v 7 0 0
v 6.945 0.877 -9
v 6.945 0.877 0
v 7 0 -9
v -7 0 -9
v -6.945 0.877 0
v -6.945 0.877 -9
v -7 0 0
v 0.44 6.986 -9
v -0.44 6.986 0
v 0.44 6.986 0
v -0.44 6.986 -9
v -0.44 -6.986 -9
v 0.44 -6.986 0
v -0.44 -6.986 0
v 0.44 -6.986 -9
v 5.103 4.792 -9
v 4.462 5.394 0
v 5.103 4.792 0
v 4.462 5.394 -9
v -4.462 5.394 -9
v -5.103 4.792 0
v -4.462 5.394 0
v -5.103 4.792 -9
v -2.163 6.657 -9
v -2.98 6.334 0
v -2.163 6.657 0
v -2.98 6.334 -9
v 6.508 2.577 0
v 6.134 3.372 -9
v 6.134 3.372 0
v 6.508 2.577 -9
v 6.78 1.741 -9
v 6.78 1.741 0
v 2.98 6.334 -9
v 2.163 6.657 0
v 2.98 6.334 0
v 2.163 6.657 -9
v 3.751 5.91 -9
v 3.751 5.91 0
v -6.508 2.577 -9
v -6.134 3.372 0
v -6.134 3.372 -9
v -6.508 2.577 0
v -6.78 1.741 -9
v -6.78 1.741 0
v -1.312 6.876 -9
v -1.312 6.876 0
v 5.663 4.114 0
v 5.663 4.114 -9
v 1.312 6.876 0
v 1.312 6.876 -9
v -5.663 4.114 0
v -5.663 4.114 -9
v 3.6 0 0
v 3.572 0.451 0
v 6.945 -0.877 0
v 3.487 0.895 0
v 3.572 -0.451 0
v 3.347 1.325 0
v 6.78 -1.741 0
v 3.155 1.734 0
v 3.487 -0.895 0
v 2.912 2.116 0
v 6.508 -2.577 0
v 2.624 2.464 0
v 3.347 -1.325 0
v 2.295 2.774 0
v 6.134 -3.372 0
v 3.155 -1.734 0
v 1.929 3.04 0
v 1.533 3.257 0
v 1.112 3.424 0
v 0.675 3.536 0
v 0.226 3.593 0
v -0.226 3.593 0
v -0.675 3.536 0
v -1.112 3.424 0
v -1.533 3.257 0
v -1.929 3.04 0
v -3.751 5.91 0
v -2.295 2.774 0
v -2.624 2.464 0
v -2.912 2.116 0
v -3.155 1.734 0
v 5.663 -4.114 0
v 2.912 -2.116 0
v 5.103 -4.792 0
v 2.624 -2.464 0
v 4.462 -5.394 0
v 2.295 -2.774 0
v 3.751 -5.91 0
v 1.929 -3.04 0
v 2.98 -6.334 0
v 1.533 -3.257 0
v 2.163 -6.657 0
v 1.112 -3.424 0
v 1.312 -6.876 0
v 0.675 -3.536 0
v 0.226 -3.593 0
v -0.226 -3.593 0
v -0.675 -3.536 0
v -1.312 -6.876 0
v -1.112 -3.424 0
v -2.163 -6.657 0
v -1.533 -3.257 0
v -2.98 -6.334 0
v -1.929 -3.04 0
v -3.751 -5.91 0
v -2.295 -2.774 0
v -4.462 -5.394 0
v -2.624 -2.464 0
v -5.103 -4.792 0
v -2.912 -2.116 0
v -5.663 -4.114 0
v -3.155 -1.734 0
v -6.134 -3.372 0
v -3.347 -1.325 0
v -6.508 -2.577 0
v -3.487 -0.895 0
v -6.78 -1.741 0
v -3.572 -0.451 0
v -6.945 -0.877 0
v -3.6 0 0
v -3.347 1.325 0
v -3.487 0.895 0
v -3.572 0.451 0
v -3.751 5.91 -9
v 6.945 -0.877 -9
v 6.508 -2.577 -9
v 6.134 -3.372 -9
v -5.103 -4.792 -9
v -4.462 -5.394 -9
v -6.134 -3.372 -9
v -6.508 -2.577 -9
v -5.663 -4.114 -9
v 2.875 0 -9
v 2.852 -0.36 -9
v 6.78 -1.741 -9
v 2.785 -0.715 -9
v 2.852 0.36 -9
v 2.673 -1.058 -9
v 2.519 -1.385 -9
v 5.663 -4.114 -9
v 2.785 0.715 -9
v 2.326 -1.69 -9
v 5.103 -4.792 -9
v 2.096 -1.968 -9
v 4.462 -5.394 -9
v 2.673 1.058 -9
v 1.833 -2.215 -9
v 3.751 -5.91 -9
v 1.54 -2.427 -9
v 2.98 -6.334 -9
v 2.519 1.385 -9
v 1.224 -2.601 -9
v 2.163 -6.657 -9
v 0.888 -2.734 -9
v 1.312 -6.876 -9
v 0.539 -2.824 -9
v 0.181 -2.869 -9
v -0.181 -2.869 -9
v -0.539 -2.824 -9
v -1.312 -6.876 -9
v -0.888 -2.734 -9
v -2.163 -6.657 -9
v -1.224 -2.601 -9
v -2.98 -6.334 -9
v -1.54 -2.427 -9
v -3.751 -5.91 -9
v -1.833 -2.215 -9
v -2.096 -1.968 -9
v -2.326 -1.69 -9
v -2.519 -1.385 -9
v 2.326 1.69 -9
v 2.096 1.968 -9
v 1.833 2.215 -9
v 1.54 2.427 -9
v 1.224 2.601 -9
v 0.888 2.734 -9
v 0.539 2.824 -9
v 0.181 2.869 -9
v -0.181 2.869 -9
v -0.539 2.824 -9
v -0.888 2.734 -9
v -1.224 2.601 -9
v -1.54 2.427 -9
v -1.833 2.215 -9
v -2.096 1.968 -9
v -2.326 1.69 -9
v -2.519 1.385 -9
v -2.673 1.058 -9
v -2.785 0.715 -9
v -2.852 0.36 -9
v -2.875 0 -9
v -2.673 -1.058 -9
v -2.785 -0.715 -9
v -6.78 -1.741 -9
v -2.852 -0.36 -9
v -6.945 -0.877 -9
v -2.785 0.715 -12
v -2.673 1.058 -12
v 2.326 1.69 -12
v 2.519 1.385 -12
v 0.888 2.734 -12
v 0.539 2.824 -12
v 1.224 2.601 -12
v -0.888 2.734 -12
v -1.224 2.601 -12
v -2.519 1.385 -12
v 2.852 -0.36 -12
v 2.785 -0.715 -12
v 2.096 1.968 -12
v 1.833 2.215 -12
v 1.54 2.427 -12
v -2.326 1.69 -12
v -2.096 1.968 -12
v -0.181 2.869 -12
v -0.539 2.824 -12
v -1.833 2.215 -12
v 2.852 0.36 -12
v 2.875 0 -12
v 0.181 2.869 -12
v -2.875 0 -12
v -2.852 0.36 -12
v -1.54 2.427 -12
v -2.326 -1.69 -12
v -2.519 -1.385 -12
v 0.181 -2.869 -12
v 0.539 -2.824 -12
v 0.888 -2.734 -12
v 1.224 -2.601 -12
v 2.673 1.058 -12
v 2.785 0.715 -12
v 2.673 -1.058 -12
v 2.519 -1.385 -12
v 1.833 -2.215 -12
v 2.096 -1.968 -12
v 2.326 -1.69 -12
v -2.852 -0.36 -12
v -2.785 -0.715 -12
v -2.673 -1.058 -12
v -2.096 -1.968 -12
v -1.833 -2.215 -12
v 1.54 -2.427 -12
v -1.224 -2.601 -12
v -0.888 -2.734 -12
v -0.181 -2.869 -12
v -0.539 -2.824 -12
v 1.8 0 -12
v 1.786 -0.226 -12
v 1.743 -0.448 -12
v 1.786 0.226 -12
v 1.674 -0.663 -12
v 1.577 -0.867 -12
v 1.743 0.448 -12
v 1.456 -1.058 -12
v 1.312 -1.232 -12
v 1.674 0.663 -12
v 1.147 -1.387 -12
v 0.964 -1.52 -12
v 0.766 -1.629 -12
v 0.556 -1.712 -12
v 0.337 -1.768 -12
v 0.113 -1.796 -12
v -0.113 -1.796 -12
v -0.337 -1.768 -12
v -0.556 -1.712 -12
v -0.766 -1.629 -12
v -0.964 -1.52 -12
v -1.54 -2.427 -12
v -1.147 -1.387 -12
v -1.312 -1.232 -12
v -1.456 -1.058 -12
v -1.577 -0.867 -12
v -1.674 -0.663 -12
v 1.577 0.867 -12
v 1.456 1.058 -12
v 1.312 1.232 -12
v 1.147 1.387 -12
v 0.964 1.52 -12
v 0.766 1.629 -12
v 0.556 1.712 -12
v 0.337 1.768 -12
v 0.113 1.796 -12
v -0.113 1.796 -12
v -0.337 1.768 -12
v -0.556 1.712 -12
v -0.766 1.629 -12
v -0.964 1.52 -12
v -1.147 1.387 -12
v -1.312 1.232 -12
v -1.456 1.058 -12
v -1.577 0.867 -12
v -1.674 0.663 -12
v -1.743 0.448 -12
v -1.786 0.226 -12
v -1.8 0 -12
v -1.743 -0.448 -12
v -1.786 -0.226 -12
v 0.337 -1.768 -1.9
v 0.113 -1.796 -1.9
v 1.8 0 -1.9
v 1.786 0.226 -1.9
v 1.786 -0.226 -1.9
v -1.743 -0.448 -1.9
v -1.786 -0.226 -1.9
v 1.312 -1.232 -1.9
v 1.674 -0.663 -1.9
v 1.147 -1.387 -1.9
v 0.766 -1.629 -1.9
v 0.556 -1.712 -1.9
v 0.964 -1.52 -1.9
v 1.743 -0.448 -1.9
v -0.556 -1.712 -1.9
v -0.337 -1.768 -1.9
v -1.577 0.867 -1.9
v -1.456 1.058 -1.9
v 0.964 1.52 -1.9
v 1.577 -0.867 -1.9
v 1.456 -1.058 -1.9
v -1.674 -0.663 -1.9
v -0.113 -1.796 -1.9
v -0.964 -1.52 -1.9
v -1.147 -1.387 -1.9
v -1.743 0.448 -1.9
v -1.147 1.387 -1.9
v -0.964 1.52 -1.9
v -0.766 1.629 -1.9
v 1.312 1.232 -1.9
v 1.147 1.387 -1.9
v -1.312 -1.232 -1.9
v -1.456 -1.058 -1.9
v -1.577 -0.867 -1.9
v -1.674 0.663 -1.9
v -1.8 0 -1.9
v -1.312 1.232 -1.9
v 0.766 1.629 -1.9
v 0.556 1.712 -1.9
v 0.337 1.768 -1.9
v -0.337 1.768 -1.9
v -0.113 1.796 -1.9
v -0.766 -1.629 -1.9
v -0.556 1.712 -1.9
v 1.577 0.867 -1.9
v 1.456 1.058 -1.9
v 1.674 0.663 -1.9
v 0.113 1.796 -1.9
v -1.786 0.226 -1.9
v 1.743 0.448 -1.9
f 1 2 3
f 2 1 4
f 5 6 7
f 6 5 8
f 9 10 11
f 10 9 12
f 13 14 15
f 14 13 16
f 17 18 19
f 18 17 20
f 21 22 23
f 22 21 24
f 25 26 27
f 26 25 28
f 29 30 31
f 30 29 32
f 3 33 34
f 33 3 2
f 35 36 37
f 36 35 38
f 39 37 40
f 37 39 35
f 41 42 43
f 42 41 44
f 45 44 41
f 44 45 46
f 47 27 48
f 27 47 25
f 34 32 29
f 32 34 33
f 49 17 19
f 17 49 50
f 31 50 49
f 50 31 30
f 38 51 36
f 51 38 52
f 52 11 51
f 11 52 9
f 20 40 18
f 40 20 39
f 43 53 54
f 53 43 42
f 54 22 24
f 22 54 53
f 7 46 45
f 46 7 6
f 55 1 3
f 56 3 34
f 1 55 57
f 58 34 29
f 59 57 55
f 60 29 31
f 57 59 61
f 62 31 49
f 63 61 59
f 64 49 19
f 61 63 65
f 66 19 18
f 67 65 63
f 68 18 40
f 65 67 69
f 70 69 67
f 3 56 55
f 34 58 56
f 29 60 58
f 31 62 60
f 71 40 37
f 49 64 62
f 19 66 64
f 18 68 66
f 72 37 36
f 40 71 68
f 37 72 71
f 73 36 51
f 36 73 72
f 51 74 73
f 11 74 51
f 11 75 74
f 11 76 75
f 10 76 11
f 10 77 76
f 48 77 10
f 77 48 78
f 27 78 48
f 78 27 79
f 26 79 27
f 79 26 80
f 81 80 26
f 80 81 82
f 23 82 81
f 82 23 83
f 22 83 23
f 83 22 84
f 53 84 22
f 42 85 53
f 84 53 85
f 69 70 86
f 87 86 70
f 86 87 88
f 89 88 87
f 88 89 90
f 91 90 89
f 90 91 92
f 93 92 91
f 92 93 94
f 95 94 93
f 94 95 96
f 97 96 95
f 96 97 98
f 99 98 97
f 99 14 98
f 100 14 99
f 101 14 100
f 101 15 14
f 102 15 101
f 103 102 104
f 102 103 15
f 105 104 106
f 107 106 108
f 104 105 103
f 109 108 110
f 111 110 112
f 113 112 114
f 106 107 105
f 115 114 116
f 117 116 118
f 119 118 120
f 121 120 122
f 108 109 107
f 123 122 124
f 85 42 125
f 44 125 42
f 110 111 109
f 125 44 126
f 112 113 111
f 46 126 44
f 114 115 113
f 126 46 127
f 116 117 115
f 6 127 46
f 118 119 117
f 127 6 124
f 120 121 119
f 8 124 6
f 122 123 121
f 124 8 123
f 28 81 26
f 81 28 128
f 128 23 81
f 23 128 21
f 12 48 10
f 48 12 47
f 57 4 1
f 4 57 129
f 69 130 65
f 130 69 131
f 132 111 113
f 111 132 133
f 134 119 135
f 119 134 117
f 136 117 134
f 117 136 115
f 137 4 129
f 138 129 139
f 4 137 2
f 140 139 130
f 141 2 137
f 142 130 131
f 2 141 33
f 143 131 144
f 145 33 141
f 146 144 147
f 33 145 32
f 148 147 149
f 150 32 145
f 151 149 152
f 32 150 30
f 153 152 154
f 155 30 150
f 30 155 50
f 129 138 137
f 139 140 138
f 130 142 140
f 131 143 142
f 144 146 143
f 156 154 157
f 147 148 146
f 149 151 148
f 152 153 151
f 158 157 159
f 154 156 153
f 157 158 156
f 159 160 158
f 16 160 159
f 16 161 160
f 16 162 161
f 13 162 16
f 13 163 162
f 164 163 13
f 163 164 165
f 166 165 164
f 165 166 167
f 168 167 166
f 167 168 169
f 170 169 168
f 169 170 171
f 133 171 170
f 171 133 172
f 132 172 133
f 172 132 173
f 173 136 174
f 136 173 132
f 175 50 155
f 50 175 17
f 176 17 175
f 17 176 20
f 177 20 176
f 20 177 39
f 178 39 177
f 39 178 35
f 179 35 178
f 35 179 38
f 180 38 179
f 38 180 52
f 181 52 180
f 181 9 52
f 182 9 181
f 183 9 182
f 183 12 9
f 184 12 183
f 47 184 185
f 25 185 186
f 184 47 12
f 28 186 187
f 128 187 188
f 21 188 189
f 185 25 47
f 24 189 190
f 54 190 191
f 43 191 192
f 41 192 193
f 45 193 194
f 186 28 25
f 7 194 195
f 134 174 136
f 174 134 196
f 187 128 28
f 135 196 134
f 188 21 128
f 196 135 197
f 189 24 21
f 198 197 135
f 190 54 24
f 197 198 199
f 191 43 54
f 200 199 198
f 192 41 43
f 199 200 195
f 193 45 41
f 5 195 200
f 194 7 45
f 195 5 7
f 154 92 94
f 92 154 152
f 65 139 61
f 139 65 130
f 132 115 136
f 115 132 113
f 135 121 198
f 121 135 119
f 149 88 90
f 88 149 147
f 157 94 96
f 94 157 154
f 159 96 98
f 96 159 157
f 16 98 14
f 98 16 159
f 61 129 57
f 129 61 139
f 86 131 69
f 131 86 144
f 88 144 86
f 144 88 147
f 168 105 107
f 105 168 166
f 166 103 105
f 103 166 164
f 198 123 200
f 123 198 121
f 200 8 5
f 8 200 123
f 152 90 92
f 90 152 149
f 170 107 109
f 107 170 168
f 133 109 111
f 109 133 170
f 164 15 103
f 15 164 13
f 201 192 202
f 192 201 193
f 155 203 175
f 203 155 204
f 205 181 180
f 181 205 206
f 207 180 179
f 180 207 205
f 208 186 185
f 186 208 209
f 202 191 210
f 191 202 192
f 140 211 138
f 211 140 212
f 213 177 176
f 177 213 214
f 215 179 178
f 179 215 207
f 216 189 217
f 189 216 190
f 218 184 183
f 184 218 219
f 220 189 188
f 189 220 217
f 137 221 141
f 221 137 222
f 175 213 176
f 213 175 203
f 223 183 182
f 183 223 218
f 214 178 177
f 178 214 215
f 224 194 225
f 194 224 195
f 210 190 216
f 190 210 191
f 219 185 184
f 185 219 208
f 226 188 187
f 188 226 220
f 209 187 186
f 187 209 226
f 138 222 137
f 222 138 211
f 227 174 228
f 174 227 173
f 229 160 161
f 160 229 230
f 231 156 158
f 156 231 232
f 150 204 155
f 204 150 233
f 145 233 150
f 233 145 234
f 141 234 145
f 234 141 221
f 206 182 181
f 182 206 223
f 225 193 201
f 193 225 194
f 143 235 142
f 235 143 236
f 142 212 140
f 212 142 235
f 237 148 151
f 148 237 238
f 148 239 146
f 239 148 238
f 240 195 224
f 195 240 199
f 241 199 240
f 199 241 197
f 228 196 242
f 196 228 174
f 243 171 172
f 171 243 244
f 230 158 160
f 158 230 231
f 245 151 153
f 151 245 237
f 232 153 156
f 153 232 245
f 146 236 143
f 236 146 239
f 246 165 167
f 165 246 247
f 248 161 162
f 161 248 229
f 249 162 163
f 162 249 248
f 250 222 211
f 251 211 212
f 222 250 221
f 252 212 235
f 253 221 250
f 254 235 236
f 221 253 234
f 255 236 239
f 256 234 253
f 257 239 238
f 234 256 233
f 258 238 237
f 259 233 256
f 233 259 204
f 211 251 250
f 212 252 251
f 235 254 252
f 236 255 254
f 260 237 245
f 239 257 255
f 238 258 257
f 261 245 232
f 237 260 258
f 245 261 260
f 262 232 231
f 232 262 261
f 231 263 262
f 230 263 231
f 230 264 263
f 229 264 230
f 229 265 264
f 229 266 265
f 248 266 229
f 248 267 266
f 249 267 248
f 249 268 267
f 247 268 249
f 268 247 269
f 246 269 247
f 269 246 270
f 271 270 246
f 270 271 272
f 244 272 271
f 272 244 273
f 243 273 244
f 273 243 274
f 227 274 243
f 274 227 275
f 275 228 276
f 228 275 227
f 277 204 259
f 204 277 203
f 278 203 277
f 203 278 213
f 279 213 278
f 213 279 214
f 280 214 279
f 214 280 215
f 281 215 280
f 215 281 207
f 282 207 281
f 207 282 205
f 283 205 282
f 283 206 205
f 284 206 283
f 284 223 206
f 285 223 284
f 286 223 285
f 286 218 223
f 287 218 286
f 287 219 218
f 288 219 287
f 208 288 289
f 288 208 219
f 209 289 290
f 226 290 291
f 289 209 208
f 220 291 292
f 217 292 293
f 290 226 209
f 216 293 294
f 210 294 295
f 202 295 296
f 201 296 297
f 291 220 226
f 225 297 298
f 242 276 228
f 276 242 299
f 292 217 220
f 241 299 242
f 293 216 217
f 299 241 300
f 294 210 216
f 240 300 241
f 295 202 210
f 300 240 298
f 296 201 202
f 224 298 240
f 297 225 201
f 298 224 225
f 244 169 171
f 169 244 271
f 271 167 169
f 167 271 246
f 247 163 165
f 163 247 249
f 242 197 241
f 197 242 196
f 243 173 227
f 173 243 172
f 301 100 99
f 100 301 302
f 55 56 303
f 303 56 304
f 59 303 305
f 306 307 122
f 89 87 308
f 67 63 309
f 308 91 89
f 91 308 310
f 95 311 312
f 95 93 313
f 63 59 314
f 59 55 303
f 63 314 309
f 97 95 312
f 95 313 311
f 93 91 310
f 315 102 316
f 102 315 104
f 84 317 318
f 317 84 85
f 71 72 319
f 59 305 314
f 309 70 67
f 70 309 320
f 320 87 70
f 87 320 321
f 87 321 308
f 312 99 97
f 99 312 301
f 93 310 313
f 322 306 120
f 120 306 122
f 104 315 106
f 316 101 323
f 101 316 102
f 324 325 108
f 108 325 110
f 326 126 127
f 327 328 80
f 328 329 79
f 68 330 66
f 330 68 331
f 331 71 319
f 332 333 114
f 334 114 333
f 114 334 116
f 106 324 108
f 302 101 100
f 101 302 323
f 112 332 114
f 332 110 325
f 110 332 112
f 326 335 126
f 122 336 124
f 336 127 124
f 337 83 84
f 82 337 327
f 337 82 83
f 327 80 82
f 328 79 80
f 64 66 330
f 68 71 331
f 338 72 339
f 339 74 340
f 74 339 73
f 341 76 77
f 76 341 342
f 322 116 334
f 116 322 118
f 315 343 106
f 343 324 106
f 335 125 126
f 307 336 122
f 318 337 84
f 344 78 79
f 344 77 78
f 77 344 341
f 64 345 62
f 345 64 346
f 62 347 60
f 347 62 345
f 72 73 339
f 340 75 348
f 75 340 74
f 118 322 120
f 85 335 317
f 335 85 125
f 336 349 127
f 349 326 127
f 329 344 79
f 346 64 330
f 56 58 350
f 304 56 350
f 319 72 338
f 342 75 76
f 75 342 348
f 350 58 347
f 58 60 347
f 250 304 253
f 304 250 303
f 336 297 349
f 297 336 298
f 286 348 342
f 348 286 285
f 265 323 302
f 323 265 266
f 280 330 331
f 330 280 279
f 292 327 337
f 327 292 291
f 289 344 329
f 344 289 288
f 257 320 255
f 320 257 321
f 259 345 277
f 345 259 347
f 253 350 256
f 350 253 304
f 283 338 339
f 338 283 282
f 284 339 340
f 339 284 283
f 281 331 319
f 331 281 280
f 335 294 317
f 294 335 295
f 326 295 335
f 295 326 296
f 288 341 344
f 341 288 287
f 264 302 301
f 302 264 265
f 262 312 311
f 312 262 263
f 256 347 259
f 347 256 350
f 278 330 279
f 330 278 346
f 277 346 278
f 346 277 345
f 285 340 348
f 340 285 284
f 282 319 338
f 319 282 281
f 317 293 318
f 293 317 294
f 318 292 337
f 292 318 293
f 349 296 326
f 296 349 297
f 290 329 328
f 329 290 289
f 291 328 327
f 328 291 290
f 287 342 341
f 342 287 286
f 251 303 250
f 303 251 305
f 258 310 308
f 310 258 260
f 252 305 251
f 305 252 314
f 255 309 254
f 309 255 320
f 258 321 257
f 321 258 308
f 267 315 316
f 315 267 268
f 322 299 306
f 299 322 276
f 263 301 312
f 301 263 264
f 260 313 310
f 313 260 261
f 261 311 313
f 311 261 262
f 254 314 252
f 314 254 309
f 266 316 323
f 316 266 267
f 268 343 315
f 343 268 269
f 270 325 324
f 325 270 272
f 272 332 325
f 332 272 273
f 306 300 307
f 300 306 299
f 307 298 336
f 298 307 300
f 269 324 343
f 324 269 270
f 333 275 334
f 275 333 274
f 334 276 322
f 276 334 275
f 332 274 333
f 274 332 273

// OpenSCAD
$fn = 50;


difference() {
	union() {
		translate(v = [0, 0, -9.0000000000]) {
			cylinder(h = 9, r = 7.0000000000);
		}
		translate(v = [0, 0, -12.0000000000]) {
			cylinder(h = 12, r = 2.8750000000);
		}
	}
	union() {
		translate(v = [0, 0, 0]) {
			rotate(a = [0, 0, 0]) {
				difference() {
					union() {
						translate(v = [0, 0, -12.0000000000]) {
							cylinder(h = 12, r = 1.5000000000);
						}
						translate(v = [0, 0, -1.9000000000]) {
							cylinder(h = 1.9000000000, r1 = 1.8000000000, r2 = 3.6000000000);
						}
						translate(v = [0, 0, -12.0000000000]) {
							cylinder(h = 12, r = 1.8000000000);
						}
						translate(v = [0, 0, -12.0000000000]) {
							cylinder(h = 12, r = 1.5000000000);
						}
					}
					union();
				}
			}
		}
	}
}
